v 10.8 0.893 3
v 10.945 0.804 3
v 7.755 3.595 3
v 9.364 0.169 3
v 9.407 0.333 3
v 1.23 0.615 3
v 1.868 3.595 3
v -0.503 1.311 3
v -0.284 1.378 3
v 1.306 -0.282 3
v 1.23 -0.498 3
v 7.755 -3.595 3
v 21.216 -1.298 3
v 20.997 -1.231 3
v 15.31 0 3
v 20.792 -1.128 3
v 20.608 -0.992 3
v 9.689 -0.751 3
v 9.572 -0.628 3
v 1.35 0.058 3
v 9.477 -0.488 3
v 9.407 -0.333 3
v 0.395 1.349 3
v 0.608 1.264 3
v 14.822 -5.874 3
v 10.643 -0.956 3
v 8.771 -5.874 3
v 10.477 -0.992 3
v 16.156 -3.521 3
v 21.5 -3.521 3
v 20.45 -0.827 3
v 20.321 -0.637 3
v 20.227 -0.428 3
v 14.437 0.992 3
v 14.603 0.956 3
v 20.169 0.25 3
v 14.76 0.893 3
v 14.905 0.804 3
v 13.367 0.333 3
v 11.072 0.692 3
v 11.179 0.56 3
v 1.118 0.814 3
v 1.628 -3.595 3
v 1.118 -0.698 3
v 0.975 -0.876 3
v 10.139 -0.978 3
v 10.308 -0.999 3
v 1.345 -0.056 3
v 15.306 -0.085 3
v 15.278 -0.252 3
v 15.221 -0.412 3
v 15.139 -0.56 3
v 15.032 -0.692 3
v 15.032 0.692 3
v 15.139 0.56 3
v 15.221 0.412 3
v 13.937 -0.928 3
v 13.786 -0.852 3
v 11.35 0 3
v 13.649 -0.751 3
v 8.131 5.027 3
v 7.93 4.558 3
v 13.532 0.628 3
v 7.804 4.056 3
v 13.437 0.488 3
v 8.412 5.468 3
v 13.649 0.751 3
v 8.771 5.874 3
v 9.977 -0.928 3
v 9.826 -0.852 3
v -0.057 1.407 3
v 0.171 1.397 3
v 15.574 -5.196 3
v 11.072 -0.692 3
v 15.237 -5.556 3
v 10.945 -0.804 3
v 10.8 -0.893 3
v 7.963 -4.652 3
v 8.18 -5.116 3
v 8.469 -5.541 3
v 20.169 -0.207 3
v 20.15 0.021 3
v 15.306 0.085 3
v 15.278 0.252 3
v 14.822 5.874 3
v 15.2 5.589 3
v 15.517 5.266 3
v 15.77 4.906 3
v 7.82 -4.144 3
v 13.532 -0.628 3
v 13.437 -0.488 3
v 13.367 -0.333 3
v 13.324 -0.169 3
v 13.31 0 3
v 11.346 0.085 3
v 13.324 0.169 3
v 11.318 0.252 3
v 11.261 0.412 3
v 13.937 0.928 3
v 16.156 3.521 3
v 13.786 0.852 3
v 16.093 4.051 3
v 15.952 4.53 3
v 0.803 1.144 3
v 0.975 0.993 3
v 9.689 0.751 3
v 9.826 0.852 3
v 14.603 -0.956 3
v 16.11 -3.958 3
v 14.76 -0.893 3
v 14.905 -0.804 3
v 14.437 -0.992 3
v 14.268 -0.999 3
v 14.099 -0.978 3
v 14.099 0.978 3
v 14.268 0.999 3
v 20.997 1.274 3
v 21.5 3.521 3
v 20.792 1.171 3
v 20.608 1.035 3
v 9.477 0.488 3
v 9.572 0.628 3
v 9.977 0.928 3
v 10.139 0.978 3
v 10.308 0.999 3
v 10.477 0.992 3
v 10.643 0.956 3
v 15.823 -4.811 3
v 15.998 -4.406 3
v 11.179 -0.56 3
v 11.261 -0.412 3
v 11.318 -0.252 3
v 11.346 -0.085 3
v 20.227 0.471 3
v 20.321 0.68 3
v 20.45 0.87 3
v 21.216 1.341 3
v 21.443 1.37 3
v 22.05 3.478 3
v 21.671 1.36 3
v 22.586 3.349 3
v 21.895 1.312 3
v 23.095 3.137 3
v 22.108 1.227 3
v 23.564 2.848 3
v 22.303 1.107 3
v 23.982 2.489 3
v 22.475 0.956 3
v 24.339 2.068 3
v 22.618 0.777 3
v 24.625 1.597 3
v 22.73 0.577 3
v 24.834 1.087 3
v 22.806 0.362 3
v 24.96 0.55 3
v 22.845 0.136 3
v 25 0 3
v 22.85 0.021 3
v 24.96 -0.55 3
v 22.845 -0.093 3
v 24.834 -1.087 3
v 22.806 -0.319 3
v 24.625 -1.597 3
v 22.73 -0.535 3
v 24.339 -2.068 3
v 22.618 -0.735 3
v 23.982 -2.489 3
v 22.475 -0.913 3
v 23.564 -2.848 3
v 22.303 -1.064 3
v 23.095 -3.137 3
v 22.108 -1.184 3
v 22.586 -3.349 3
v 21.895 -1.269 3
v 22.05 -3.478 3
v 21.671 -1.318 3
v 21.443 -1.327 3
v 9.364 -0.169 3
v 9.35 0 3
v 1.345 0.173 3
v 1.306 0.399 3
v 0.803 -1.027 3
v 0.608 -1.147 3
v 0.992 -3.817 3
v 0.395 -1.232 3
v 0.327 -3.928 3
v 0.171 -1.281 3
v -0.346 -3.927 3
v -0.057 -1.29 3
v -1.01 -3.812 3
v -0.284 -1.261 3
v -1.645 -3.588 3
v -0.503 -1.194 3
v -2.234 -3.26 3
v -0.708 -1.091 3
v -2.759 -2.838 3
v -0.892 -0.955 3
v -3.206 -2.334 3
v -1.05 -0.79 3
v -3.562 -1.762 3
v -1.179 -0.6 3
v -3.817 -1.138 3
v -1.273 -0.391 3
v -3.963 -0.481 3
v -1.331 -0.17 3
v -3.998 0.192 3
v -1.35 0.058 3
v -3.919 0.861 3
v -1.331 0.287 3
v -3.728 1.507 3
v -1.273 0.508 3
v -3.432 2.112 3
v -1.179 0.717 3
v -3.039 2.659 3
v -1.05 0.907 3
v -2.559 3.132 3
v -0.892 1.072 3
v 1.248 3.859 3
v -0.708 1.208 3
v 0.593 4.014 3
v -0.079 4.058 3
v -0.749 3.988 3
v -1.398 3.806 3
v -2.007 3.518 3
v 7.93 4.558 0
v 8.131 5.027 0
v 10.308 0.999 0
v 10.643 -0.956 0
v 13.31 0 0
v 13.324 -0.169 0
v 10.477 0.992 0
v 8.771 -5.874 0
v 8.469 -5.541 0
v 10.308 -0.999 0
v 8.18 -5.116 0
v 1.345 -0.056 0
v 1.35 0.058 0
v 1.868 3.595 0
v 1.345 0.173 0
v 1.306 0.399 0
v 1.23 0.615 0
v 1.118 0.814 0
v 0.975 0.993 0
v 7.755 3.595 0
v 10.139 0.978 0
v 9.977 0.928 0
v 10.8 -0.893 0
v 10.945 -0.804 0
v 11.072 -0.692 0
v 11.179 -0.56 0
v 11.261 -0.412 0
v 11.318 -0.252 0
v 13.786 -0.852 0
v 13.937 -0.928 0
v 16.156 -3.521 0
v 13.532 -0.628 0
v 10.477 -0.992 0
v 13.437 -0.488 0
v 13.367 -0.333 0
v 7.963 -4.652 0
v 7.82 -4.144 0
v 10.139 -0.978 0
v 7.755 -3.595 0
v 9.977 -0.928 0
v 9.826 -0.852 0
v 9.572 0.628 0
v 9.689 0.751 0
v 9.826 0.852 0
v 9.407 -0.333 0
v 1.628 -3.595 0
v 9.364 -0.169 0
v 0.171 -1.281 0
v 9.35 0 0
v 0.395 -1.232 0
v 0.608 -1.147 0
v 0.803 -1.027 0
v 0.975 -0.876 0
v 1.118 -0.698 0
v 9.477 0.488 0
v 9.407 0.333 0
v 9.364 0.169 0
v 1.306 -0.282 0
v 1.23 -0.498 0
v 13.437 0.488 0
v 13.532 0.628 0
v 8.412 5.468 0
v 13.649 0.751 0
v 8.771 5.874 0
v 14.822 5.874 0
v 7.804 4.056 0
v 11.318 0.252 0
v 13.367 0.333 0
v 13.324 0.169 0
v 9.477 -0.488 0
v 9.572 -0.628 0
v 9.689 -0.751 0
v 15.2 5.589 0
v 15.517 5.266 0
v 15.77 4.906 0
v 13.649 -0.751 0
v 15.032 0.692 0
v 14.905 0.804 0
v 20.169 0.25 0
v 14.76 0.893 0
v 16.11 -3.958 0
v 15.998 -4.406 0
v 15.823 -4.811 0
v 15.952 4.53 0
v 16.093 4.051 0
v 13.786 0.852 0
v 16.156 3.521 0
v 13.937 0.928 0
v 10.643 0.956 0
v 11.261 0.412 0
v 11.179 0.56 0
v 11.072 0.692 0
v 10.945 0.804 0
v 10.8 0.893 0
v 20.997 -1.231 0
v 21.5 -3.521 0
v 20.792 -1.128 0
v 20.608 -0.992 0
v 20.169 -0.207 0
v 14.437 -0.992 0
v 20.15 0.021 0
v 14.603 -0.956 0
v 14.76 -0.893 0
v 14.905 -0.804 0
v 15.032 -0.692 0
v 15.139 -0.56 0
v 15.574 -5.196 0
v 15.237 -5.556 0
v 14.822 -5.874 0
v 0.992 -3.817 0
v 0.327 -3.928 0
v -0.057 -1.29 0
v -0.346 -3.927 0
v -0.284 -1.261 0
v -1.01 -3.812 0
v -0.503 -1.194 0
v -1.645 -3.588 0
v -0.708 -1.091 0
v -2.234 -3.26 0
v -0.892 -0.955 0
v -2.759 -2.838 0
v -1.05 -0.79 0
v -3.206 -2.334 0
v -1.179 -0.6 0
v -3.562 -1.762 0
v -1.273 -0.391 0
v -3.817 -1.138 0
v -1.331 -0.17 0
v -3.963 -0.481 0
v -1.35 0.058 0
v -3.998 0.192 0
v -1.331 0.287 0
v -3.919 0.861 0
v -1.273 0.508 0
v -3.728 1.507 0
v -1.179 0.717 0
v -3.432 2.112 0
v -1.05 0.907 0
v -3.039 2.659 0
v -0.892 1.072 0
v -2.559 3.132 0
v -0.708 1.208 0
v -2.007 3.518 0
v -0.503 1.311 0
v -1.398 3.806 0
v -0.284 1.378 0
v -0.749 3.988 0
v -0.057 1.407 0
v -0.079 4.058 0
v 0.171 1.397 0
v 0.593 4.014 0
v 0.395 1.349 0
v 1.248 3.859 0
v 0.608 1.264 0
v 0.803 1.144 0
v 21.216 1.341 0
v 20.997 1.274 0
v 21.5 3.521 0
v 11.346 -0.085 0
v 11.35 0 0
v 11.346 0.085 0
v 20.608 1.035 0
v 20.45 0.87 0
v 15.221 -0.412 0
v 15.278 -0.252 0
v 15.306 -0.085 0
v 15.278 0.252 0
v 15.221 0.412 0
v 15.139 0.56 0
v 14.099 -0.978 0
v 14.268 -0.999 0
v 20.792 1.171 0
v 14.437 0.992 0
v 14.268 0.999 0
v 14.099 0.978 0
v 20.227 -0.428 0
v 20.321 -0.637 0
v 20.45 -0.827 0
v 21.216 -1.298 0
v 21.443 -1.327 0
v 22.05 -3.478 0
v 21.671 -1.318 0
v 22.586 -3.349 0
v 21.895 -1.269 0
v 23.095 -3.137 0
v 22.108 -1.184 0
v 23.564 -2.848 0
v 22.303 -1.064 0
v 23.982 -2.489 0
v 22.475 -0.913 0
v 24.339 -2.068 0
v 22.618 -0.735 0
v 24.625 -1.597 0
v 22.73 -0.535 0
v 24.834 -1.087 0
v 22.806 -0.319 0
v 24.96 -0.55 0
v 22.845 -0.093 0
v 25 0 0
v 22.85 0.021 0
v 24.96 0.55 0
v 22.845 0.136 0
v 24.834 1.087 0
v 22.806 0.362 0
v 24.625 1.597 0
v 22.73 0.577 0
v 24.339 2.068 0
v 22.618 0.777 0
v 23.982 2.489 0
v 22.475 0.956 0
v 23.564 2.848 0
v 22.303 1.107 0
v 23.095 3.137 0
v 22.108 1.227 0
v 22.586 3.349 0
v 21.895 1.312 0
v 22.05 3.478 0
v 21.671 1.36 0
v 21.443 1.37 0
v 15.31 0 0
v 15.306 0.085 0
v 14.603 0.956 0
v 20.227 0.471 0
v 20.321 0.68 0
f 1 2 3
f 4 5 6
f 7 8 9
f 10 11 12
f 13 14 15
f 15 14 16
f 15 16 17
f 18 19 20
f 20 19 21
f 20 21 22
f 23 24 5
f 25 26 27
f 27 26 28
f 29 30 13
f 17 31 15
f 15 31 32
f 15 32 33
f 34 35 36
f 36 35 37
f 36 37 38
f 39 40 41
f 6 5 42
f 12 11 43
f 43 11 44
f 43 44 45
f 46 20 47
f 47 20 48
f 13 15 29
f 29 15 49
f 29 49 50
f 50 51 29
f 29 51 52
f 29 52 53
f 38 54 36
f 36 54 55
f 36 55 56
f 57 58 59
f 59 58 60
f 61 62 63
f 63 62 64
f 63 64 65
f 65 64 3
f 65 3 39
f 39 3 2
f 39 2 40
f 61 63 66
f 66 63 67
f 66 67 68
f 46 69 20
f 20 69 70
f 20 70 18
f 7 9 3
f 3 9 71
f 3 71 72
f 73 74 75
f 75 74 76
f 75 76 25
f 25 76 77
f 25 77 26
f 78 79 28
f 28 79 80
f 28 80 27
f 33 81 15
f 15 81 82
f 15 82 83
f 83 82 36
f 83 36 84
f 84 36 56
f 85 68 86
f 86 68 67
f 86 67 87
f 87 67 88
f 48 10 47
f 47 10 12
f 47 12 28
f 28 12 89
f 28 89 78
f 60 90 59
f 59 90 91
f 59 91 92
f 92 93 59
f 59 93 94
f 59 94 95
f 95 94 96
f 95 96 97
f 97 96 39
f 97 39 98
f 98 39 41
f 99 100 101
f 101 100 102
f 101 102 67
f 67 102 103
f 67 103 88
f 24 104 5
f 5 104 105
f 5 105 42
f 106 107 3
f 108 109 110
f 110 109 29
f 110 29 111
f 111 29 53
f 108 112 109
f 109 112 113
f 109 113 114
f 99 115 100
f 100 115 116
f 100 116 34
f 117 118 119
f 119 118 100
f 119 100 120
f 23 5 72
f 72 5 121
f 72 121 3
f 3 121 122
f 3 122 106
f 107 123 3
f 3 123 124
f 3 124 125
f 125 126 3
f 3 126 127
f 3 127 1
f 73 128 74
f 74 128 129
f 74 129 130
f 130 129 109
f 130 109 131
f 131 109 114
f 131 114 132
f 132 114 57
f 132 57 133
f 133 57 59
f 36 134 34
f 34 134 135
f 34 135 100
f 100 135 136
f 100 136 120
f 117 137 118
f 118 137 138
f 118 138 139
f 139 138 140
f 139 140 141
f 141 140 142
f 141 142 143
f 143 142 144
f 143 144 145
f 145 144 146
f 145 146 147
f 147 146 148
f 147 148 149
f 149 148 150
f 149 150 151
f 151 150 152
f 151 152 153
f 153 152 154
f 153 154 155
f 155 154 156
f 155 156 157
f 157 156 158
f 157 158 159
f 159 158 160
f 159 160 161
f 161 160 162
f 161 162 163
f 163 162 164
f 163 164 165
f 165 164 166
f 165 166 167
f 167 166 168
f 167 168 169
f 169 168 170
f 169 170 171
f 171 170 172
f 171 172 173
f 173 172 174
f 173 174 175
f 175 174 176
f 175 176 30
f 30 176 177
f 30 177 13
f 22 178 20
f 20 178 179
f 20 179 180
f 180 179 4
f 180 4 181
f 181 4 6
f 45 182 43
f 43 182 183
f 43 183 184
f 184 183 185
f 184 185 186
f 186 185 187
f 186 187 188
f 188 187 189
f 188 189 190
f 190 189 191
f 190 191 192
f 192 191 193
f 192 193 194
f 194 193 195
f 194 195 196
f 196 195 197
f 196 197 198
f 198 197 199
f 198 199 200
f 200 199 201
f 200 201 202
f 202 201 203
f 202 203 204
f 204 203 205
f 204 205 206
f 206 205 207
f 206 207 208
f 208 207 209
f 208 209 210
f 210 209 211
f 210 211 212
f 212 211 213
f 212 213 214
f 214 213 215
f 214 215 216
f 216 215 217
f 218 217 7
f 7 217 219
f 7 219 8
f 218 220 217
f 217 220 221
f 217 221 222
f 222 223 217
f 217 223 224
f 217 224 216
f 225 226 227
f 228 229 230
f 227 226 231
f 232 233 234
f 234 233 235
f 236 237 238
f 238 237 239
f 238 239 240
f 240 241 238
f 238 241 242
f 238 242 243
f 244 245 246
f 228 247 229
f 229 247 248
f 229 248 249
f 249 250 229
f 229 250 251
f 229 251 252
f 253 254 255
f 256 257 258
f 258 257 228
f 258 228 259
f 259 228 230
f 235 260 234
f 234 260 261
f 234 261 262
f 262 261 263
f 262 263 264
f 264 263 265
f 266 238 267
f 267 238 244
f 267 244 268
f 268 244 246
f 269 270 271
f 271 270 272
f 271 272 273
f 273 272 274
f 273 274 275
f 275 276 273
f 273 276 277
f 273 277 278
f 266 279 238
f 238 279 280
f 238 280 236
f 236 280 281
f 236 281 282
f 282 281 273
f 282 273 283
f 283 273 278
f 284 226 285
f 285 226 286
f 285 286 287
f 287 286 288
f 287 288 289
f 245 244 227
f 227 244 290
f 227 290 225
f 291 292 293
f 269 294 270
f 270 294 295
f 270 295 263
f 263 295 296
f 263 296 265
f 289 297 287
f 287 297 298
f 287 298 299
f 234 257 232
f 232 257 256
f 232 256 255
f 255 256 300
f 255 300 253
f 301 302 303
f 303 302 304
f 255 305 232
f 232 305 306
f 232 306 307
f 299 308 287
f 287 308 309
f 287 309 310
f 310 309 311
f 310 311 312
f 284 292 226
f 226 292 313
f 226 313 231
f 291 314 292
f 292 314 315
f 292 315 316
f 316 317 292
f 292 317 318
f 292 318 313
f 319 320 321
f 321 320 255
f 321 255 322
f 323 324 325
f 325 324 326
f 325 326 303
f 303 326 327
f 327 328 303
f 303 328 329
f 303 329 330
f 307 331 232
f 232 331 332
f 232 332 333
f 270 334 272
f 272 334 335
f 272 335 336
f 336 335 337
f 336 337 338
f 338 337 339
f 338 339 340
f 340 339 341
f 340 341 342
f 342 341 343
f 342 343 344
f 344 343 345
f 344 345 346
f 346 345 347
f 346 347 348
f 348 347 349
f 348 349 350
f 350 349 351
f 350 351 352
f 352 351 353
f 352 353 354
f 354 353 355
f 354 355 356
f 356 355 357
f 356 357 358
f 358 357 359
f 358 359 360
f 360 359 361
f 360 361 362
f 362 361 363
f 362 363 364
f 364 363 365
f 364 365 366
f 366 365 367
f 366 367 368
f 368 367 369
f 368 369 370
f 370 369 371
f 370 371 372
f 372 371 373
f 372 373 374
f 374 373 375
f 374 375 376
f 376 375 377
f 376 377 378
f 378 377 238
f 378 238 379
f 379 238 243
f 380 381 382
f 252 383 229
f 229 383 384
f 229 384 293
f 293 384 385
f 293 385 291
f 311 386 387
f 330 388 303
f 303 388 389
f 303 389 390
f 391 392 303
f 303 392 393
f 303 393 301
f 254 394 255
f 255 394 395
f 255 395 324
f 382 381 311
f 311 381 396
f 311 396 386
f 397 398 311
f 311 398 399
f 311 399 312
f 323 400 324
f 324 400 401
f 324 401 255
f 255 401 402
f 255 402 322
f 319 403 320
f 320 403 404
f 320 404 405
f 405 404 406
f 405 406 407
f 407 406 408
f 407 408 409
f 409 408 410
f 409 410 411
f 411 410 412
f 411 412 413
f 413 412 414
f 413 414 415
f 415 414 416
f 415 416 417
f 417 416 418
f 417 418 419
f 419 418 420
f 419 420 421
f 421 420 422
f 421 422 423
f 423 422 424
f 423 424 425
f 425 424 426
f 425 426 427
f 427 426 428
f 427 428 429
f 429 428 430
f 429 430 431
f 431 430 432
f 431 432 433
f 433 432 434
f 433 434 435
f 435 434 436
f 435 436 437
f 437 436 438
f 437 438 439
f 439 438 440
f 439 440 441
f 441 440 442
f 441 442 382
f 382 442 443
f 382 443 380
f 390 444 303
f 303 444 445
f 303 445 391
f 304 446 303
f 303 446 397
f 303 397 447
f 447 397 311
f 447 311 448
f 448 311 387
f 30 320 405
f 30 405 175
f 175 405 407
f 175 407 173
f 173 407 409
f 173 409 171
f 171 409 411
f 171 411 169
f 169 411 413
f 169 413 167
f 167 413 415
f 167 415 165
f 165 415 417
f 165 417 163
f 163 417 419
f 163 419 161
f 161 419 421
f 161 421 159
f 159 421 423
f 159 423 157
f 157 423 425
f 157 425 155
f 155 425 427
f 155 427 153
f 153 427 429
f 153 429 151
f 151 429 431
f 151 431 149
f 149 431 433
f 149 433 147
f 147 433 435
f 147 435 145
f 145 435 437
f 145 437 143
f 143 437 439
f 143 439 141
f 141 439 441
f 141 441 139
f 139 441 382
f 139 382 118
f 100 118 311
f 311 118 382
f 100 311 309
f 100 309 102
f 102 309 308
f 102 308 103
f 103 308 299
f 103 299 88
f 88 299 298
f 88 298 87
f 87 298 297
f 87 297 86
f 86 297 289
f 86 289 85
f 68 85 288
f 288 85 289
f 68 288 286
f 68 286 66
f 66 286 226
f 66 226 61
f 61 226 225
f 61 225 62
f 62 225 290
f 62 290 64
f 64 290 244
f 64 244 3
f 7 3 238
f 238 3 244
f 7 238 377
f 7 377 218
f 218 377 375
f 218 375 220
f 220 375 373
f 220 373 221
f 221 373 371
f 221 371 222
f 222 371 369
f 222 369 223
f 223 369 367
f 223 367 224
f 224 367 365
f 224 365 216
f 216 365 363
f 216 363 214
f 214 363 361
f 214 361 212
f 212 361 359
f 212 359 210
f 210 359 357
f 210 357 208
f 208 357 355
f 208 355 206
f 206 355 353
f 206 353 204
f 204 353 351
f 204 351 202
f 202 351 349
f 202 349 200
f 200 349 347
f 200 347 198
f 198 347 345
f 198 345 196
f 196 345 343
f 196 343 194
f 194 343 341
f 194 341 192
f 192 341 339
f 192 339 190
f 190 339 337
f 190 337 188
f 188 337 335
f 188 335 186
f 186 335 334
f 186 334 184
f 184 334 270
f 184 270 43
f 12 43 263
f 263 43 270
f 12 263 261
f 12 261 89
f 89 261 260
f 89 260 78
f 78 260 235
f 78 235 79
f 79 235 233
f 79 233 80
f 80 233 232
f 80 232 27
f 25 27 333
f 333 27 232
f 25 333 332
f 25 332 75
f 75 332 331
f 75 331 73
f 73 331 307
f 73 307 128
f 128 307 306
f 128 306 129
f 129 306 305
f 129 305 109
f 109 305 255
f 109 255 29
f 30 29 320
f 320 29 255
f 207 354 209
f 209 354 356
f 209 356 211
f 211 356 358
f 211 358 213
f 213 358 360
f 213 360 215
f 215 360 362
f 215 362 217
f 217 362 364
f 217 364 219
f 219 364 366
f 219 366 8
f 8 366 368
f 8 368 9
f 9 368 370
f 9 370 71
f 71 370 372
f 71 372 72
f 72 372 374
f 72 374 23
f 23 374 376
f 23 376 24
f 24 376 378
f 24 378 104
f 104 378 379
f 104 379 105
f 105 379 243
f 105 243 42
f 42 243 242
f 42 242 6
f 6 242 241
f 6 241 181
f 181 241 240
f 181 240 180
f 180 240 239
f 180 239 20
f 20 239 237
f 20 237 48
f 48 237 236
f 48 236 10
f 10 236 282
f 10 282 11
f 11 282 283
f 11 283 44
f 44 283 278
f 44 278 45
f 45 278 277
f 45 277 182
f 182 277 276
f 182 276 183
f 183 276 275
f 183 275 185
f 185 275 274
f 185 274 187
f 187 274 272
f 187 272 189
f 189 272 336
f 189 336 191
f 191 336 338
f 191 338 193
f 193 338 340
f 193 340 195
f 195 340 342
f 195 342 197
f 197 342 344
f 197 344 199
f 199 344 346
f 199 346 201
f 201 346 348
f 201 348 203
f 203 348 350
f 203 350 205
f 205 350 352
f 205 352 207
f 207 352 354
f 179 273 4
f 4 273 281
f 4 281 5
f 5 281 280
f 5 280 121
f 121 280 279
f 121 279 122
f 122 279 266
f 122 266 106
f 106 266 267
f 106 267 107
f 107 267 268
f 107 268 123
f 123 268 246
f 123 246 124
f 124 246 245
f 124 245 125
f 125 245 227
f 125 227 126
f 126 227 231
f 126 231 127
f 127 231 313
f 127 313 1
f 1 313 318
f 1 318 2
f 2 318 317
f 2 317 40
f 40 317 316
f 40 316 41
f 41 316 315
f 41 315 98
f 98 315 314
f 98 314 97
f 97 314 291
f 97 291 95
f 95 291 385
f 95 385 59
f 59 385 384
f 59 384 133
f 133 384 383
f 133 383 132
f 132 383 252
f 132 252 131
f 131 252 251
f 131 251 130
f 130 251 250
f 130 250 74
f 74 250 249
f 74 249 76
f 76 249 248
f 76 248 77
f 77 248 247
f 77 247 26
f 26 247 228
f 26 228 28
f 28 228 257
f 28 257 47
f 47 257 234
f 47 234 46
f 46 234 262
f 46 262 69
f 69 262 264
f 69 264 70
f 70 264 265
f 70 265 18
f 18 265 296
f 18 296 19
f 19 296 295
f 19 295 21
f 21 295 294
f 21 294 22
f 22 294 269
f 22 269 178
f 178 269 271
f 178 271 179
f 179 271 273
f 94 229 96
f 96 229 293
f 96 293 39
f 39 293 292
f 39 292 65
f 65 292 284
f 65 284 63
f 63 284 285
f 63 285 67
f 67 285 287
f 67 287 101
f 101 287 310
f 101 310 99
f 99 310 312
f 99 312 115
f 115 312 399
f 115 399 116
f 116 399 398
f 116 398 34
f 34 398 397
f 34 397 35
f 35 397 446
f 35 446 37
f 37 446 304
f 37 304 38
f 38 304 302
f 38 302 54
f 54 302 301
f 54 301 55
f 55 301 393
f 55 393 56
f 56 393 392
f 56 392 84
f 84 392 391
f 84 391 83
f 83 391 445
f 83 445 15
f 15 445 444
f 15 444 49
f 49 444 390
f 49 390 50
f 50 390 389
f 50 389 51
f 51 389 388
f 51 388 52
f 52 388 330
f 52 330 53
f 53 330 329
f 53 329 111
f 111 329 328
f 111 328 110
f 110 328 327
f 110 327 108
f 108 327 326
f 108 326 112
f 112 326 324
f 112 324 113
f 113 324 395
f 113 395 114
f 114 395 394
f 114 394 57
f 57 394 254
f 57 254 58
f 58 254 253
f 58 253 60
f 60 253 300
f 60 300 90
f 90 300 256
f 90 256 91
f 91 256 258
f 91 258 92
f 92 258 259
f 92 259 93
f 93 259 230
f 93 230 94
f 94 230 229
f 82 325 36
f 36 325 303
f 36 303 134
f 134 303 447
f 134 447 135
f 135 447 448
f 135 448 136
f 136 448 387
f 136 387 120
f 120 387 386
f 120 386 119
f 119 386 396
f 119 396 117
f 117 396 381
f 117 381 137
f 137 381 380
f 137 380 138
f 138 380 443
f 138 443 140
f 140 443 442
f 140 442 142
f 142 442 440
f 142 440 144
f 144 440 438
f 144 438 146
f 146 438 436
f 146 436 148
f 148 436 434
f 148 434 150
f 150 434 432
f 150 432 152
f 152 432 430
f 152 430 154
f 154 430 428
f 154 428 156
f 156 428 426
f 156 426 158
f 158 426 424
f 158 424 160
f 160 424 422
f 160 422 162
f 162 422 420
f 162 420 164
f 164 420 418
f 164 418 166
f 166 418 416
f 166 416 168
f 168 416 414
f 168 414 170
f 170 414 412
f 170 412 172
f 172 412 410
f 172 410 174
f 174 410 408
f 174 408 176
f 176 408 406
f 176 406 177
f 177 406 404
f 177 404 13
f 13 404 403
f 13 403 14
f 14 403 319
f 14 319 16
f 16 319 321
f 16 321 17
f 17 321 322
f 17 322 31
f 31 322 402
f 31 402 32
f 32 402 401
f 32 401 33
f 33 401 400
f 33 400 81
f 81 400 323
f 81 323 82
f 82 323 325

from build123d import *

# Parameters (mm, degrees)
SKETCH_3_R      = 1.35
SKETCH_3_R_2    = 1
EXTRUDE_2_DEPTH = 3


with BuildPart() as part:
    # 草图3 → 凸台-拉伸2 (new body)
    with BuildSketch(Plane.XY):
        with BuildLine():
            Line((21.499968123, 3.52141019), (16.156278552, 3.52141019))
            add(Edge.make_bspline(
                [(16.156278552, 3.52141019), (16.088160339, 5.051537173), (14.821900334, 5.873909505)],
                knots=[0, 0, 0, 1, 1, 1], degree=2))
            Line((14.821900334, 5.873909505), (8.771282217, 5.873909505))
            add(Edge.make_bspline(
                [(7.754778373, 3.595279655), (7.816403966, 4.944689103), (8.771282217, 5.873909505)],
                knots=[0, 0, 0, 1, 1, 1], degree=2))
            Line((7.754778373, 3.595279655), (1.868346732, 3.595279655))
            ThreePointArc((1.868346732, 3.595279655), (-3.997767344, 0.192060873), (1.627998751, -3.595279655))
            Line((1.627998751, -3.595279655), (7.754778373, -3.595279655))
            add(Edge.make_bspline(
                [(7.754778373, -3.595279655), (7.816403966, -4.944689103), (8.771282217, -5.873909505)],
                knots=[0, 0, 0, 1, 1, 1], degree=2))
            Line((8.771282217, -5.873909505), (14.821900334, -5.873909505))
            add(Edge.make_bspline(
                [(16.156278552, -3.52141019), (16.088160339, -5.051537173), (14.821900334, -5.873909505)],
                knots=[0, 0, 0, 1, 1, 1], degree=2))
            Line((16.156278552, -3.52141019), (21.499968123, -3.52141019))
            ThreePointArc((21.499968123, -3.52141019), (23.982399961, -2.488702667), (24.999902637, 0))
            ThreePointArc((24.999902637, 0), (23.982399961, 2.488702667), (21.499968123, 3.52141019))
        make_face()
        with Locations((0, 0.058433534)):
            Circle(SKETCH_3_R, mode=Mode.SUBTRACT)
        with Locations((10.35, 0)):
            Circle(SKETCH_3_R_2, mode=Mode.SUBTRACT)
        with Locations((14.31, 0)):
            Circle(SKETCH_3_R_2, mode=Mode.SUBTRACT)
        with Locations((21.499968123, 0.02141019)):
            Circle(SKETCH_3_R, mode=Mode.SUBTRACT)
    extrude(amount=EXTRUDE_2_DEPTH)


solid = part.part
